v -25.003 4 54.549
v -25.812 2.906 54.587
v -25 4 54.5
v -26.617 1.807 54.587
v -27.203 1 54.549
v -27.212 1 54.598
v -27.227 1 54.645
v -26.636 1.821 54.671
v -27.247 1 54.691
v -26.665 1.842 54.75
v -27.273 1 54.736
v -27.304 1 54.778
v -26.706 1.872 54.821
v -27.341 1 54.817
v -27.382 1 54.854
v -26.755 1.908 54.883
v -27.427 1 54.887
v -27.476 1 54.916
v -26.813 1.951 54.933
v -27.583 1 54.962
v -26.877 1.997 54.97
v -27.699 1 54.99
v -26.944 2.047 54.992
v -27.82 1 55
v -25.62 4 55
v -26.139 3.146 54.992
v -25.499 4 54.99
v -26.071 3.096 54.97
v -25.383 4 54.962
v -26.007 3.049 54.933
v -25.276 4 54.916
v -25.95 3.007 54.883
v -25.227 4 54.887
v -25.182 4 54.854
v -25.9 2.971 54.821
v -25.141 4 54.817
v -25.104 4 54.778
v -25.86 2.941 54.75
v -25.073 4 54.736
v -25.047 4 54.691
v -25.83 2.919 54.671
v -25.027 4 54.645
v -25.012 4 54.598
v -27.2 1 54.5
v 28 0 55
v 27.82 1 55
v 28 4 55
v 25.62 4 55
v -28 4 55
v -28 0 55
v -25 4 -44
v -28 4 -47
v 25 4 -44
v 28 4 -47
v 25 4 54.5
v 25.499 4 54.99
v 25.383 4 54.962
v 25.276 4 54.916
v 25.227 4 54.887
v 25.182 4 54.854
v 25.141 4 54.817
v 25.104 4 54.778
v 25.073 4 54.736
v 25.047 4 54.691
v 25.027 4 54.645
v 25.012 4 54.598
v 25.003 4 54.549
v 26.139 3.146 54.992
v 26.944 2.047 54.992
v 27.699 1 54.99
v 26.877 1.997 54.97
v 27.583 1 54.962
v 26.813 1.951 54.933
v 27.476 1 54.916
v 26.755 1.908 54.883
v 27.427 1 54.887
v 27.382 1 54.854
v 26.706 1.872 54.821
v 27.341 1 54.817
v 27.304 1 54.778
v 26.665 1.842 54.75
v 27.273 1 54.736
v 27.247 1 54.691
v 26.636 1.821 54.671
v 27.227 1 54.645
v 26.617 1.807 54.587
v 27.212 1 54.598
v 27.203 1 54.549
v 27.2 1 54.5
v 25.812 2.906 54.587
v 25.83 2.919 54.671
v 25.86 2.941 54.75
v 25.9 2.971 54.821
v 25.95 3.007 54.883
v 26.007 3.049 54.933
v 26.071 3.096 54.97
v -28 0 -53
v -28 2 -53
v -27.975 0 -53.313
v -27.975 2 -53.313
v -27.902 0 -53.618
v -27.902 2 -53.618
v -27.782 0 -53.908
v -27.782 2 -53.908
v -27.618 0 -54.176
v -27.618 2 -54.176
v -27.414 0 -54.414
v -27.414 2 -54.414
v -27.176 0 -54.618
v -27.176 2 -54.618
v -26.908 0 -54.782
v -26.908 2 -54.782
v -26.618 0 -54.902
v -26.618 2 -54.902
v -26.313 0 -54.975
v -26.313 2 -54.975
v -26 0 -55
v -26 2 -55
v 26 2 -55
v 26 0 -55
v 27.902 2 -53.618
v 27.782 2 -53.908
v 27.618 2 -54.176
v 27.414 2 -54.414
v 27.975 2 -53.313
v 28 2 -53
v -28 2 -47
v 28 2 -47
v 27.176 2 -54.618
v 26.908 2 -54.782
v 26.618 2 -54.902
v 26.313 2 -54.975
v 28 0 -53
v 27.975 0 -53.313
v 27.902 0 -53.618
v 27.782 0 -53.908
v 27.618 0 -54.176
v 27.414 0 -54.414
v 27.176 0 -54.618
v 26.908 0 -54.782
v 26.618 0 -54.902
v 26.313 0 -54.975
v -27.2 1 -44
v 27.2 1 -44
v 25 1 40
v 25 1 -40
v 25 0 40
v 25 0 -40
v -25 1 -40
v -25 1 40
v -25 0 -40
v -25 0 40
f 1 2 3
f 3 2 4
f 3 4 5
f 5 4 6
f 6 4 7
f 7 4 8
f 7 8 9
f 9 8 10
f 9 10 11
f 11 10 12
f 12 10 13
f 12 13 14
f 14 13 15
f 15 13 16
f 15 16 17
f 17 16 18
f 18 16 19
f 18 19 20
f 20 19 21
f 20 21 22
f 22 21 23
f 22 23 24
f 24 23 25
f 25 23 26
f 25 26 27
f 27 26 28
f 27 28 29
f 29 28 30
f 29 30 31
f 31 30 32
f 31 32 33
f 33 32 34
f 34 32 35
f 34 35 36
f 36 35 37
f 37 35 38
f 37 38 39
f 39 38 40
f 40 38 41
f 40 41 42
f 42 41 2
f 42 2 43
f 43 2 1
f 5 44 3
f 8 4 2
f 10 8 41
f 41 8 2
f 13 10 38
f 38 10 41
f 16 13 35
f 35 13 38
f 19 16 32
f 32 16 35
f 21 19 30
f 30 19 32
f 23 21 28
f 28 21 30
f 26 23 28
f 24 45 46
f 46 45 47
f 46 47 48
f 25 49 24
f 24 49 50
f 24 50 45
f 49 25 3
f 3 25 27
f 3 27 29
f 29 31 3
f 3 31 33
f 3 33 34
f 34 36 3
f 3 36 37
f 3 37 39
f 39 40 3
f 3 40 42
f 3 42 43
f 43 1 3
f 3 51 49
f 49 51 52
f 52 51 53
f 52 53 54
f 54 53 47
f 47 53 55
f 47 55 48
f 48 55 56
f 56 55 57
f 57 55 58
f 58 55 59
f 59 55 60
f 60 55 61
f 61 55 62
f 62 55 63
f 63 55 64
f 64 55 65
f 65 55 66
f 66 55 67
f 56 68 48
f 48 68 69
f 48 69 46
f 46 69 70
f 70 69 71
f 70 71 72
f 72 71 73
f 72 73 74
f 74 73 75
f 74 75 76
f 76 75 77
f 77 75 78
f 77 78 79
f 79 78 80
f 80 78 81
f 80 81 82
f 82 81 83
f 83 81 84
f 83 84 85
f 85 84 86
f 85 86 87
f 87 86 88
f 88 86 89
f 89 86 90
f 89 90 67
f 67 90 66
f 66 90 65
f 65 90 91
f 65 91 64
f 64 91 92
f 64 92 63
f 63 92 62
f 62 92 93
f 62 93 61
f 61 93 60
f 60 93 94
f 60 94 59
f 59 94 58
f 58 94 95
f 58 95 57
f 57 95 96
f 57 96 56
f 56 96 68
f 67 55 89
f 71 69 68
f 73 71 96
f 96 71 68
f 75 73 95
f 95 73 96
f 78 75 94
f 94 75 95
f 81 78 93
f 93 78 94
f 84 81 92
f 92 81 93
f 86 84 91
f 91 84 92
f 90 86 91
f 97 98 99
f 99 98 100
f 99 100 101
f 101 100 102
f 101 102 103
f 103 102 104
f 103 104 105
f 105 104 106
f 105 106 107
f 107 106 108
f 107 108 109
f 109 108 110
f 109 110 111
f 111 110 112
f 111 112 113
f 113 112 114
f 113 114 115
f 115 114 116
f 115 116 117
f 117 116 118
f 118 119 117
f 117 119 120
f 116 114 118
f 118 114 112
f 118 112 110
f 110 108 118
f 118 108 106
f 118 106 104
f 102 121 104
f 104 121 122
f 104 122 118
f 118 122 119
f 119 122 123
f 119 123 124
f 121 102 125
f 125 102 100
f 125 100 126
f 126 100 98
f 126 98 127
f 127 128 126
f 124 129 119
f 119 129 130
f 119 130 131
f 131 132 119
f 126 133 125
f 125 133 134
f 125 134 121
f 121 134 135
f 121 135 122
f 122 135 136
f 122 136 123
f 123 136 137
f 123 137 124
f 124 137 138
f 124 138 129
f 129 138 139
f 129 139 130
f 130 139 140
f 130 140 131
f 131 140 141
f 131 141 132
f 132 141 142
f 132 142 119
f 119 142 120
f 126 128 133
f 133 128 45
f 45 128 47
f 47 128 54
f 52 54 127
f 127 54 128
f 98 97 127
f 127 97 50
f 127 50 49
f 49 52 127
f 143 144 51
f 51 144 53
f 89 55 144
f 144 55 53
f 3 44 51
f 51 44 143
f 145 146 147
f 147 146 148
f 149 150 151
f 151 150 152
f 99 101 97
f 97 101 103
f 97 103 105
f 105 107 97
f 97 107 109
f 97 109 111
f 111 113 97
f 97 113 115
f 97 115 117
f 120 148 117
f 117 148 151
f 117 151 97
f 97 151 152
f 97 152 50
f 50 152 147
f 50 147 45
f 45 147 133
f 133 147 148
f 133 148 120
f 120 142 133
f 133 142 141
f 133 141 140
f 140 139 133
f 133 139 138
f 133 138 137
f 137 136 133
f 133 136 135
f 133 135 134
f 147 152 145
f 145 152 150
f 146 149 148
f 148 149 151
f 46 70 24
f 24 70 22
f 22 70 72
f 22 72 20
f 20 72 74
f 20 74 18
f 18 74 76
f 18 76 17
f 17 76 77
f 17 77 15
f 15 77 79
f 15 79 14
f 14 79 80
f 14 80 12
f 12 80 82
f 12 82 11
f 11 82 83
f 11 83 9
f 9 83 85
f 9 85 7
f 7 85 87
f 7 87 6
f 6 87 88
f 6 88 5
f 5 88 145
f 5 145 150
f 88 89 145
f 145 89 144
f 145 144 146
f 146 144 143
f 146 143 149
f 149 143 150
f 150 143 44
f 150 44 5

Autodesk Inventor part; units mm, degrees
ref_plane "YZ Plane" through (0, 0, 0) normal (1, 0, 0) x (0, 1, 0)
ref_plane "XZ Plane" through (0, 0, 0) normal (0, 1, 0) x (-1, 0, 0)
ref_plane "XY Plane" through (0, 0, 0) normal (0, 0, 1) x (1, 0, 0)
sketch "Эскиз1" plane through (0, 0, 0) normal (0, 1, 0) x (-1, 0, 0)
  line L0 (-25, -40) -> (25, -40)
  line L1 (25, -40) -> (25, 40)
  line L2 (25, 40) -> (-25, 40)
  line L3 (-25, 40) -> (-25, -40)
  line L4 (-25, -40) -> (25, 40) construction
  line L5 (25, -40) -> (-25, 40) construction
  line L6 (28, 43) -> (28, -43)
  line L7 (28, -43) -> (-28, -43)
  line L8 (-28, -43) -> (-28, 43)
  line L9 (-28, 43) -> (28, 43)
  line L10 (28, 43) -> (25, 43)
  line L11 (25, 43) -> (25, -43)
  line L12 (25, -43) -> (28, -43)
  line L13 (28, -43) -> (28, 43)
  line L14 (-28, 43) -> (-25, 43)
  line L15 (-25, 43) -> (-25, -43)
  line L16 (-25, -43) -> (-28, -43)
  line L17 (-28, -43) -> (-28, 43)
  point P0 (0, 0)
  point P1 (-25, 43)
  dimension "d0" = 50
  dimension "d1" = 80
  dimension "d2" = 3
extrude "Выдавливание1" add sketch "Эскиз1" along normal blind 1 contours L15 L7 L8 L9 L3 | L0 L11 L7 L15 | L1 L11 L9 L6 L7 | L15 L9 L11 L2
extrude "Выдавливание2" add sketch "Эскиз1" along normal blind 4 contours L15 L7 L8 L9 L3 | L0 L11 L7 L15 | L1 L11 L9 L6 L7
sketch "Эскиз2" plane through (-28, 0, 43) normal (0, 0, 1) x (1, 0, 0)
  line L0 (0, 0) -> (0, 4) projected
  line L1 (0, 1) -> (56, 1)
  line L2 (56, 0) -> (56, 4) projected
  line L3 (3, 0) -> (3, 4) projected
  line L4 (3, 4) -> (0.8, 1)
  line L5 (28, 0) -> (28, 4)
  line L6 (53, 4) -> (55.2, 1)
  line L7 (53, 0) -> (53, 4) projected
  line L8 (53, 4) -> (53, 1)
  point P0 (55.2, 1)
  point P1 (3, 1)
  dimension "d7" = 0.8
extrude "Выдавливание3" cut sketch "Эскиз2" against normal up to surface (83 mm away)
sketch "Эскиз3" plane through (-25, 0, -40) normal (0, 0, 1) x (1, 0, 0)
  line L0 (0, 0) -> (50, 0) projected
  line L1 (50, 0) -> (50, 1) projected
  line L2 (52.2, 1) -> (50, 1) projected
  line L3 (50, 4) -> (52.2, 1) projected
  line L4 (0, 4) -> (50, 4) projected
  line L5 (-2.2, 1) -> (0, 4) projected
  line L6 (0, 1) -> (-2.2, 1) projected
  line L7 (0, 0) -> (0, 1) projected
  line L8 (-2.2, 1) -> (52.2, 1) projected
  point P0 (25, 0)
extrude "Выдавливание4" cut sketch "Эскиз3" against normal blind 1 contours L6 L5 L4 L3 L2 L8
sketch "Эскиз4" plane through (28, 0, -43) normal (0, 0, -1) x (-1, 0, 0)
  line L0 (0, 0) -> (56, 0) projected
  line L1 (56, 0) -> (56, 4) projected
  line L2 (0, 4) -> (56, 4) projected
  line L3 (0, 0) -> (0, 4) projected
  point P0 (28, 0)
extrude "Выдавливание5" add sketch "Эскиз4" along normal blind 5
sketch "Эскиз5" plane through (-28, 0, 43) normal (0, 0, 1) x (1, 0, 0)
  line L0 (0.8, 1) -> (55.2, 1) projected
  line L1 (0.8, 1) -> (3, 4) projected
  line L2 (0, 4) -> (3, 4) projected
  line L3 (0, 0) -> (0, 4) projected
  line L4 (0, 0) -> (56, 0) projected
  line L5 (56, 0) -> (56, 4) projected
  line L6 (53, 4) -> (56, 4) projected
  line L7 (53, 4) -> (55.2, 1) projected
  point P0 (28, 0)
extrude "Выдавливание6" add sketch "Эскиз5" along normal blind 5
sketch "Эскиз6" plane through (-25, 0, -41) normal (0, 0, 1) x (1, 0, 0)
  line L0 (0, 4) -> (50, 4) projected
  line L1 (-2.2, 1) -> (0, 4) projected
  line L2 (52.2, 1) -> (-2.2, 1) projected
  line L3 (50, 4) -> (52.2, 1) projected
  point P0 (25, 0)
extrude "Выдавливание7" cut sketch "Эскиз6" against normal blind 3
sketch "Эскиз7" plane through (-28, 0, 48) normal (0, 0, 1) x (1, 0, 0)
  line L0 (56, 0) -> (56, 4) projected
  line L1 (56, 4) -> (53, 4) projected
  line L2 (53, 4) -> (55.2, 1) projected
  line L3 (55.2, 1) -> (0.8, 1) projected
  line L4 (0.8, 1) -> (3, 4) projected
  line L5 (3, 4) -> (0, 4) projected
  line L6 (0, 4) -> (0, 0) projected
  line L7 (0, 0) -> (56, 0) projected
  point P0 (28, 0)
extrude "Выдавливание8" add sketch "Эскиз7" along normal blind 7
sketch "Эскиз8" plane through (28, 0, -48) normal (0, 0, -1) x (-1, 0, 0)
  line L0 (0, 0) -> (56, 0) projected
  line L1 (56, 0) -> (56, 4) projected
  line L2 (56, 4) -> (0, 4) projected
  line L3 (0, 4) -> (0, 0) projected
  point P0 (28, 0)
extrude "Выдавливание9" add sketch "Эскиз8" along normal blind 7
sketch "Эскиз9" plane through (0, 4, 0) normal (0, 1, 0) x (1, 0, 0)
  line L0 (-28, -55) -> (-28, 55) projected
  line L1 (28, 55) -> (28, -55) projected
  line L2 (-28, 55) -> (28, 55)
  line L3 (28, 55) -> (28, 44)
  line L4 (28, 44) -> (-28, 44)
  line L5 (-28, 44) -> (-28, 55)
  line L6 (-28, 44) -> (28, 44)
  line L7 (28, 44) -> (28, 47)
  line L8 (28, 47) -> (-28, 47)
  line L9 (-28, 47) -> (-28, 44)
  point P0 (0, 0)
  point P1 (25, 44)
  dimension "d23" = 56
  dimension "d24" = 3
extrude "Выдавливание10" cut sketch "Эскиз9" against normal blind 2 contours L0 L2 L1 L8
fillet "Сопряжение2" radius 2 2 edges at (28, 1, -55) (-28, 1, -55)
fillet "Сопряжение3" radius 0.5 2 edges at (26.1, 2.5, 55) (-26.1, 2.5, 55)
properties part number "cover"
